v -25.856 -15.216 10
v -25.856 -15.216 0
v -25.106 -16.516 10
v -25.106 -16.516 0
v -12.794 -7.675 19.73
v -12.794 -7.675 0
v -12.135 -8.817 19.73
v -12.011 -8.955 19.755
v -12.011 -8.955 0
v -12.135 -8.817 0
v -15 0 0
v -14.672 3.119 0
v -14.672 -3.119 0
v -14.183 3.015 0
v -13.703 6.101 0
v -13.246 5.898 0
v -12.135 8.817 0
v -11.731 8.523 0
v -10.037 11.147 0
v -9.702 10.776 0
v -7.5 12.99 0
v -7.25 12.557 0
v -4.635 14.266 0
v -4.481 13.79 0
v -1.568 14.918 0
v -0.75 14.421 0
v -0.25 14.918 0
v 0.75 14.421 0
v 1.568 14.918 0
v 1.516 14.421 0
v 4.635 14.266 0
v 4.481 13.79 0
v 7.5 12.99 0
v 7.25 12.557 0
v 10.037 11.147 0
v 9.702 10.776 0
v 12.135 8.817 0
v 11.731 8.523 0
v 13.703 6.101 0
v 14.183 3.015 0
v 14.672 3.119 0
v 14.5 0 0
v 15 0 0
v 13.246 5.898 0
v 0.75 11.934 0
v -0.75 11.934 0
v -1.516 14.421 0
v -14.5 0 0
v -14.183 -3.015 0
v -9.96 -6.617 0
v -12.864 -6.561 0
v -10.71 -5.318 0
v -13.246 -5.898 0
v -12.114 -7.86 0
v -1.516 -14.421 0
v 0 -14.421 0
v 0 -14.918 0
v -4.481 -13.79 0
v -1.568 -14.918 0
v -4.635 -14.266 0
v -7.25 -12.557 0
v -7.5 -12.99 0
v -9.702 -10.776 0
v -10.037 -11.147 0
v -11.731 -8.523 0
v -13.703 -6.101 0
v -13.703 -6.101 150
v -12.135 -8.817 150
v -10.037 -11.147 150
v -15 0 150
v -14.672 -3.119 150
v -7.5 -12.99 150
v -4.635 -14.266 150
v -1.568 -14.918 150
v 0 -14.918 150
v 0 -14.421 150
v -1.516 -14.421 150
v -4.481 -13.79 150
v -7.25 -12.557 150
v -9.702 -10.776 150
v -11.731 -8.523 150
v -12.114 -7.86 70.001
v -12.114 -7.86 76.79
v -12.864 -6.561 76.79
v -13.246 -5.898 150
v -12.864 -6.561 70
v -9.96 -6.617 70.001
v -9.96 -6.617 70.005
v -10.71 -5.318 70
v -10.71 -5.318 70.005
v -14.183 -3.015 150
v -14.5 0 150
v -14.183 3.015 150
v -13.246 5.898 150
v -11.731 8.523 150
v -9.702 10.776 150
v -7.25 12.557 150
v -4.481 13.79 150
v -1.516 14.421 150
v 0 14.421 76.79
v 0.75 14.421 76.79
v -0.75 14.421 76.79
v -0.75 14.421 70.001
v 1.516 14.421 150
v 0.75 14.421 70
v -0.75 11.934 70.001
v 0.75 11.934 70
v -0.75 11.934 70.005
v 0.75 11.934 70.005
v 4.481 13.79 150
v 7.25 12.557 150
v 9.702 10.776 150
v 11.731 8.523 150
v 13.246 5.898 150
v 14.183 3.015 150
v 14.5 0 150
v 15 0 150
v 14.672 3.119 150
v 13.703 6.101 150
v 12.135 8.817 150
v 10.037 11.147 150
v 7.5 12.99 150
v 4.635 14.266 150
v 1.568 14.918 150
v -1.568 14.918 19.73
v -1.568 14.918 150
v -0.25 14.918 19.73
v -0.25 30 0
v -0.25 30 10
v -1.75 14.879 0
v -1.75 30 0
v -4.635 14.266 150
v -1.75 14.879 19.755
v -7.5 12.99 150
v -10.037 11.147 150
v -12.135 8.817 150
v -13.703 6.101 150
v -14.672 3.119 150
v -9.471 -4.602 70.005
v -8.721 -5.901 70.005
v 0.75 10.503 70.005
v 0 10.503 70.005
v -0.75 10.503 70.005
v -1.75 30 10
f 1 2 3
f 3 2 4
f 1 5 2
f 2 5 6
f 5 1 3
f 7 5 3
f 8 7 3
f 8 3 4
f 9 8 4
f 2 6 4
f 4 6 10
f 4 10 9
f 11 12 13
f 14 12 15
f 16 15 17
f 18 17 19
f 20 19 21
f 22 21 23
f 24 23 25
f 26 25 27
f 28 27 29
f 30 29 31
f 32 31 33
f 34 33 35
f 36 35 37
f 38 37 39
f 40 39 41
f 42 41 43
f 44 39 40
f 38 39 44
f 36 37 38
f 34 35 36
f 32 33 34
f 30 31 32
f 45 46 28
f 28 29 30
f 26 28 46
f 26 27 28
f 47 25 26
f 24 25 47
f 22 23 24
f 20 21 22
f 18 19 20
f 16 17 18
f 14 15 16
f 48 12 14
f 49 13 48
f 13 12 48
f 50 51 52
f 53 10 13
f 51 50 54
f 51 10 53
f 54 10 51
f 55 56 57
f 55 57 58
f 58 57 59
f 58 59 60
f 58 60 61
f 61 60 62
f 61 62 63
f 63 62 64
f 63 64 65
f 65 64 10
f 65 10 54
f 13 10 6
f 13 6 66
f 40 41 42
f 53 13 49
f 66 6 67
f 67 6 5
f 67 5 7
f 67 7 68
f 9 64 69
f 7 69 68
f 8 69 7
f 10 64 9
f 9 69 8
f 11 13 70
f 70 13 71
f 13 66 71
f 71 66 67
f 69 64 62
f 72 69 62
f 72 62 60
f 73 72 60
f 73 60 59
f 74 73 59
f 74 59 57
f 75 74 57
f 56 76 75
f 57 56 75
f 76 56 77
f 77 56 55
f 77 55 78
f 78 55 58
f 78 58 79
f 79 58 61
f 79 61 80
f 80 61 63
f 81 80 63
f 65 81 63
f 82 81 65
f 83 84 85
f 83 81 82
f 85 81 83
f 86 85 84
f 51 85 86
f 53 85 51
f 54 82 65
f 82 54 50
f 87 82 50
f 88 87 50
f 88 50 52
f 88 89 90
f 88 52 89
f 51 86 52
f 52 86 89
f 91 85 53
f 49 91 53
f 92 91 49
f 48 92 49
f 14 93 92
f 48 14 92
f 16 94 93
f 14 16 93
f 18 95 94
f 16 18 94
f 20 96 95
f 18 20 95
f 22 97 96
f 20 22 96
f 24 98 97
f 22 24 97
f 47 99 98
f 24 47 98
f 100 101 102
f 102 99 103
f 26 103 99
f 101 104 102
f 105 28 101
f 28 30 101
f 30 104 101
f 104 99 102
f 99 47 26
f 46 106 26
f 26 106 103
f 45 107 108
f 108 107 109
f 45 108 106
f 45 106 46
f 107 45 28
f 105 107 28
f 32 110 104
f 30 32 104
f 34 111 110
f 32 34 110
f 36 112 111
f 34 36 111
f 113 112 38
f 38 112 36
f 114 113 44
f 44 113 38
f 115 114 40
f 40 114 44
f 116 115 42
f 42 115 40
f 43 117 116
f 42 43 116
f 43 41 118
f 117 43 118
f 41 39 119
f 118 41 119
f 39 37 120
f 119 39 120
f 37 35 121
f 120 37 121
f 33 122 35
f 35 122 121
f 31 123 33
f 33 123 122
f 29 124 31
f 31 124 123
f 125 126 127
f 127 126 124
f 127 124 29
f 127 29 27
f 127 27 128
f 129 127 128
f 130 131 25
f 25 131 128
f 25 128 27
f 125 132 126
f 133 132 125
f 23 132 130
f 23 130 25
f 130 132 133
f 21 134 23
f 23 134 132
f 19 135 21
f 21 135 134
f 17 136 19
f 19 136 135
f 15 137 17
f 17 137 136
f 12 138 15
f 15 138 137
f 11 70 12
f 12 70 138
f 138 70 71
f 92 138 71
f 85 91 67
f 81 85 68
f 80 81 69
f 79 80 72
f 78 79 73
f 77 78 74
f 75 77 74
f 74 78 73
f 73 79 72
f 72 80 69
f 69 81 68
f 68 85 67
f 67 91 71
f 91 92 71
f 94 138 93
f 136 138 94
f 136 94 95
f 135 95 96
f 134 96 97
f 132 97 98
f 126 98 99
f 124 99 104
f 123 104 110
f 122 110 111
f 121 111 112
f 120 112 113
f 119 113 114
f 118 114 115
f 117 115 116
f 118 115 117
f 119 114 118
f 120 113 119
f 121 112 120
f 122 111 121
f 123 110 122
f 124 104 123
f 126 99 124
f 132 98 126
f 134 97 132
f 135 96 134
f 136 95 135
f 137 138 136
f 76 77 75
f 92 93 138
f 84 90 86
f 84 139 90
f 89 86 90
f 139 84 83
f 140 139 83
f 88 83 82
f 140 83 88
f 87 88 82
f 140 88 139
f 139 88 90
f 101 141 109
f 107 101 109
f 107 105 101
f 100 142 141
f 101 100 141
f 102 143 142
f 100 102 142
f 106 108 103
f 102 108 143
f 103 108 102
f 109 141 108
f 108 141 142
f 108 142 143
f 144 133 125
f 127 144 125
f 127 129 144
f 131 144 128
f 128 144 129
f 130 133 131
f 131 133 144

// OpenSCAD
l_cuerpo=150;//mm
d_cuerpo=30;
r_cuerpo=d_cuerpo/2;
e_cuerpo=0.5;//mm //espesor

d_motor=24;//mm
r_motor=d_motor/2;
l_motor=70;

n_aletas=3;
l_aletas=20;
a_aletas=15;
e_aletas=e_cuerpo;


n_refuerzos=3;
e_refuerzos=3*e_cuerpo;
resalte_refuerzos=e_refuerzos;


DEBUG=true;

difference(){
union(){
// Cuerpo del cohete
difference(){
   cylinder(r=r_cuerpo, h=l_cuerpo);
	translate ([0,0,-l_cuerpo/2]) cylinder(r=r_cuerpo-e_cuerpo, h=2*l_cuerpo);
   }

// Agare del motor

   //translate([0,0,l_motor]) cylinder(r=r_cuerpo, h=e_refuerzos);
   
   //Refuerzos
   for ( i = [0 : n_refuerzos] ) {
   rotate([0,0,i*360/n_refuerzos]) {
      translate([-e_refuerzos/2,0,0])
         cube([e_refuerzos,r_cuerpo-e_cuerpo,l_motor+0.001]);
      translate([e_refuerzos/2,0,l_motor]) 
         rotate([0,-90,0])
            linear_extrude (height=e_refuerzos)
               polygon([
                  [0,r_motor-resalte_refuerzos],
                  [0,r_cuerpo-e_cuerpo],
                  [(r_cuerpo-e_cuerpo-(r_motor-resalte_refuerzos))/tan(30),r_cuerpo-e_cuerpo]
               ]);
      }
   }

// Aletas
   for ( i = [0 : n_aletas] ) {
   rotate([0,0,i*360/n_aletas]) {
      //translate([-e_aletas/2,r_cuerpo-e_cuerpo,0])
      //   cube([e_aletas,a_aletas+e_cuerpo,l_aletas]);
      translate([-e_aletas/2,0,0])
         rotate([0,-90,0])
            linear_extrude (height=e_refuerzos)
               polygon([
                  [0,r_cuerpo-e_cuerpo],
                  [0,r_cuerpo+a_aletas],
                  [l_aletas*0.5,r_cuerpo+a_aletas],
                  [l_aletas,r_cuerpo-e_cuerpo]
               ]);
      }
   }

}

// Motor
cylinder(d=d_motor,h=2*l_motor+0.01,center=true);






if (DEBUG) {translate ([0,-1000,-500])cube([1000,1000,1000]);}
}
